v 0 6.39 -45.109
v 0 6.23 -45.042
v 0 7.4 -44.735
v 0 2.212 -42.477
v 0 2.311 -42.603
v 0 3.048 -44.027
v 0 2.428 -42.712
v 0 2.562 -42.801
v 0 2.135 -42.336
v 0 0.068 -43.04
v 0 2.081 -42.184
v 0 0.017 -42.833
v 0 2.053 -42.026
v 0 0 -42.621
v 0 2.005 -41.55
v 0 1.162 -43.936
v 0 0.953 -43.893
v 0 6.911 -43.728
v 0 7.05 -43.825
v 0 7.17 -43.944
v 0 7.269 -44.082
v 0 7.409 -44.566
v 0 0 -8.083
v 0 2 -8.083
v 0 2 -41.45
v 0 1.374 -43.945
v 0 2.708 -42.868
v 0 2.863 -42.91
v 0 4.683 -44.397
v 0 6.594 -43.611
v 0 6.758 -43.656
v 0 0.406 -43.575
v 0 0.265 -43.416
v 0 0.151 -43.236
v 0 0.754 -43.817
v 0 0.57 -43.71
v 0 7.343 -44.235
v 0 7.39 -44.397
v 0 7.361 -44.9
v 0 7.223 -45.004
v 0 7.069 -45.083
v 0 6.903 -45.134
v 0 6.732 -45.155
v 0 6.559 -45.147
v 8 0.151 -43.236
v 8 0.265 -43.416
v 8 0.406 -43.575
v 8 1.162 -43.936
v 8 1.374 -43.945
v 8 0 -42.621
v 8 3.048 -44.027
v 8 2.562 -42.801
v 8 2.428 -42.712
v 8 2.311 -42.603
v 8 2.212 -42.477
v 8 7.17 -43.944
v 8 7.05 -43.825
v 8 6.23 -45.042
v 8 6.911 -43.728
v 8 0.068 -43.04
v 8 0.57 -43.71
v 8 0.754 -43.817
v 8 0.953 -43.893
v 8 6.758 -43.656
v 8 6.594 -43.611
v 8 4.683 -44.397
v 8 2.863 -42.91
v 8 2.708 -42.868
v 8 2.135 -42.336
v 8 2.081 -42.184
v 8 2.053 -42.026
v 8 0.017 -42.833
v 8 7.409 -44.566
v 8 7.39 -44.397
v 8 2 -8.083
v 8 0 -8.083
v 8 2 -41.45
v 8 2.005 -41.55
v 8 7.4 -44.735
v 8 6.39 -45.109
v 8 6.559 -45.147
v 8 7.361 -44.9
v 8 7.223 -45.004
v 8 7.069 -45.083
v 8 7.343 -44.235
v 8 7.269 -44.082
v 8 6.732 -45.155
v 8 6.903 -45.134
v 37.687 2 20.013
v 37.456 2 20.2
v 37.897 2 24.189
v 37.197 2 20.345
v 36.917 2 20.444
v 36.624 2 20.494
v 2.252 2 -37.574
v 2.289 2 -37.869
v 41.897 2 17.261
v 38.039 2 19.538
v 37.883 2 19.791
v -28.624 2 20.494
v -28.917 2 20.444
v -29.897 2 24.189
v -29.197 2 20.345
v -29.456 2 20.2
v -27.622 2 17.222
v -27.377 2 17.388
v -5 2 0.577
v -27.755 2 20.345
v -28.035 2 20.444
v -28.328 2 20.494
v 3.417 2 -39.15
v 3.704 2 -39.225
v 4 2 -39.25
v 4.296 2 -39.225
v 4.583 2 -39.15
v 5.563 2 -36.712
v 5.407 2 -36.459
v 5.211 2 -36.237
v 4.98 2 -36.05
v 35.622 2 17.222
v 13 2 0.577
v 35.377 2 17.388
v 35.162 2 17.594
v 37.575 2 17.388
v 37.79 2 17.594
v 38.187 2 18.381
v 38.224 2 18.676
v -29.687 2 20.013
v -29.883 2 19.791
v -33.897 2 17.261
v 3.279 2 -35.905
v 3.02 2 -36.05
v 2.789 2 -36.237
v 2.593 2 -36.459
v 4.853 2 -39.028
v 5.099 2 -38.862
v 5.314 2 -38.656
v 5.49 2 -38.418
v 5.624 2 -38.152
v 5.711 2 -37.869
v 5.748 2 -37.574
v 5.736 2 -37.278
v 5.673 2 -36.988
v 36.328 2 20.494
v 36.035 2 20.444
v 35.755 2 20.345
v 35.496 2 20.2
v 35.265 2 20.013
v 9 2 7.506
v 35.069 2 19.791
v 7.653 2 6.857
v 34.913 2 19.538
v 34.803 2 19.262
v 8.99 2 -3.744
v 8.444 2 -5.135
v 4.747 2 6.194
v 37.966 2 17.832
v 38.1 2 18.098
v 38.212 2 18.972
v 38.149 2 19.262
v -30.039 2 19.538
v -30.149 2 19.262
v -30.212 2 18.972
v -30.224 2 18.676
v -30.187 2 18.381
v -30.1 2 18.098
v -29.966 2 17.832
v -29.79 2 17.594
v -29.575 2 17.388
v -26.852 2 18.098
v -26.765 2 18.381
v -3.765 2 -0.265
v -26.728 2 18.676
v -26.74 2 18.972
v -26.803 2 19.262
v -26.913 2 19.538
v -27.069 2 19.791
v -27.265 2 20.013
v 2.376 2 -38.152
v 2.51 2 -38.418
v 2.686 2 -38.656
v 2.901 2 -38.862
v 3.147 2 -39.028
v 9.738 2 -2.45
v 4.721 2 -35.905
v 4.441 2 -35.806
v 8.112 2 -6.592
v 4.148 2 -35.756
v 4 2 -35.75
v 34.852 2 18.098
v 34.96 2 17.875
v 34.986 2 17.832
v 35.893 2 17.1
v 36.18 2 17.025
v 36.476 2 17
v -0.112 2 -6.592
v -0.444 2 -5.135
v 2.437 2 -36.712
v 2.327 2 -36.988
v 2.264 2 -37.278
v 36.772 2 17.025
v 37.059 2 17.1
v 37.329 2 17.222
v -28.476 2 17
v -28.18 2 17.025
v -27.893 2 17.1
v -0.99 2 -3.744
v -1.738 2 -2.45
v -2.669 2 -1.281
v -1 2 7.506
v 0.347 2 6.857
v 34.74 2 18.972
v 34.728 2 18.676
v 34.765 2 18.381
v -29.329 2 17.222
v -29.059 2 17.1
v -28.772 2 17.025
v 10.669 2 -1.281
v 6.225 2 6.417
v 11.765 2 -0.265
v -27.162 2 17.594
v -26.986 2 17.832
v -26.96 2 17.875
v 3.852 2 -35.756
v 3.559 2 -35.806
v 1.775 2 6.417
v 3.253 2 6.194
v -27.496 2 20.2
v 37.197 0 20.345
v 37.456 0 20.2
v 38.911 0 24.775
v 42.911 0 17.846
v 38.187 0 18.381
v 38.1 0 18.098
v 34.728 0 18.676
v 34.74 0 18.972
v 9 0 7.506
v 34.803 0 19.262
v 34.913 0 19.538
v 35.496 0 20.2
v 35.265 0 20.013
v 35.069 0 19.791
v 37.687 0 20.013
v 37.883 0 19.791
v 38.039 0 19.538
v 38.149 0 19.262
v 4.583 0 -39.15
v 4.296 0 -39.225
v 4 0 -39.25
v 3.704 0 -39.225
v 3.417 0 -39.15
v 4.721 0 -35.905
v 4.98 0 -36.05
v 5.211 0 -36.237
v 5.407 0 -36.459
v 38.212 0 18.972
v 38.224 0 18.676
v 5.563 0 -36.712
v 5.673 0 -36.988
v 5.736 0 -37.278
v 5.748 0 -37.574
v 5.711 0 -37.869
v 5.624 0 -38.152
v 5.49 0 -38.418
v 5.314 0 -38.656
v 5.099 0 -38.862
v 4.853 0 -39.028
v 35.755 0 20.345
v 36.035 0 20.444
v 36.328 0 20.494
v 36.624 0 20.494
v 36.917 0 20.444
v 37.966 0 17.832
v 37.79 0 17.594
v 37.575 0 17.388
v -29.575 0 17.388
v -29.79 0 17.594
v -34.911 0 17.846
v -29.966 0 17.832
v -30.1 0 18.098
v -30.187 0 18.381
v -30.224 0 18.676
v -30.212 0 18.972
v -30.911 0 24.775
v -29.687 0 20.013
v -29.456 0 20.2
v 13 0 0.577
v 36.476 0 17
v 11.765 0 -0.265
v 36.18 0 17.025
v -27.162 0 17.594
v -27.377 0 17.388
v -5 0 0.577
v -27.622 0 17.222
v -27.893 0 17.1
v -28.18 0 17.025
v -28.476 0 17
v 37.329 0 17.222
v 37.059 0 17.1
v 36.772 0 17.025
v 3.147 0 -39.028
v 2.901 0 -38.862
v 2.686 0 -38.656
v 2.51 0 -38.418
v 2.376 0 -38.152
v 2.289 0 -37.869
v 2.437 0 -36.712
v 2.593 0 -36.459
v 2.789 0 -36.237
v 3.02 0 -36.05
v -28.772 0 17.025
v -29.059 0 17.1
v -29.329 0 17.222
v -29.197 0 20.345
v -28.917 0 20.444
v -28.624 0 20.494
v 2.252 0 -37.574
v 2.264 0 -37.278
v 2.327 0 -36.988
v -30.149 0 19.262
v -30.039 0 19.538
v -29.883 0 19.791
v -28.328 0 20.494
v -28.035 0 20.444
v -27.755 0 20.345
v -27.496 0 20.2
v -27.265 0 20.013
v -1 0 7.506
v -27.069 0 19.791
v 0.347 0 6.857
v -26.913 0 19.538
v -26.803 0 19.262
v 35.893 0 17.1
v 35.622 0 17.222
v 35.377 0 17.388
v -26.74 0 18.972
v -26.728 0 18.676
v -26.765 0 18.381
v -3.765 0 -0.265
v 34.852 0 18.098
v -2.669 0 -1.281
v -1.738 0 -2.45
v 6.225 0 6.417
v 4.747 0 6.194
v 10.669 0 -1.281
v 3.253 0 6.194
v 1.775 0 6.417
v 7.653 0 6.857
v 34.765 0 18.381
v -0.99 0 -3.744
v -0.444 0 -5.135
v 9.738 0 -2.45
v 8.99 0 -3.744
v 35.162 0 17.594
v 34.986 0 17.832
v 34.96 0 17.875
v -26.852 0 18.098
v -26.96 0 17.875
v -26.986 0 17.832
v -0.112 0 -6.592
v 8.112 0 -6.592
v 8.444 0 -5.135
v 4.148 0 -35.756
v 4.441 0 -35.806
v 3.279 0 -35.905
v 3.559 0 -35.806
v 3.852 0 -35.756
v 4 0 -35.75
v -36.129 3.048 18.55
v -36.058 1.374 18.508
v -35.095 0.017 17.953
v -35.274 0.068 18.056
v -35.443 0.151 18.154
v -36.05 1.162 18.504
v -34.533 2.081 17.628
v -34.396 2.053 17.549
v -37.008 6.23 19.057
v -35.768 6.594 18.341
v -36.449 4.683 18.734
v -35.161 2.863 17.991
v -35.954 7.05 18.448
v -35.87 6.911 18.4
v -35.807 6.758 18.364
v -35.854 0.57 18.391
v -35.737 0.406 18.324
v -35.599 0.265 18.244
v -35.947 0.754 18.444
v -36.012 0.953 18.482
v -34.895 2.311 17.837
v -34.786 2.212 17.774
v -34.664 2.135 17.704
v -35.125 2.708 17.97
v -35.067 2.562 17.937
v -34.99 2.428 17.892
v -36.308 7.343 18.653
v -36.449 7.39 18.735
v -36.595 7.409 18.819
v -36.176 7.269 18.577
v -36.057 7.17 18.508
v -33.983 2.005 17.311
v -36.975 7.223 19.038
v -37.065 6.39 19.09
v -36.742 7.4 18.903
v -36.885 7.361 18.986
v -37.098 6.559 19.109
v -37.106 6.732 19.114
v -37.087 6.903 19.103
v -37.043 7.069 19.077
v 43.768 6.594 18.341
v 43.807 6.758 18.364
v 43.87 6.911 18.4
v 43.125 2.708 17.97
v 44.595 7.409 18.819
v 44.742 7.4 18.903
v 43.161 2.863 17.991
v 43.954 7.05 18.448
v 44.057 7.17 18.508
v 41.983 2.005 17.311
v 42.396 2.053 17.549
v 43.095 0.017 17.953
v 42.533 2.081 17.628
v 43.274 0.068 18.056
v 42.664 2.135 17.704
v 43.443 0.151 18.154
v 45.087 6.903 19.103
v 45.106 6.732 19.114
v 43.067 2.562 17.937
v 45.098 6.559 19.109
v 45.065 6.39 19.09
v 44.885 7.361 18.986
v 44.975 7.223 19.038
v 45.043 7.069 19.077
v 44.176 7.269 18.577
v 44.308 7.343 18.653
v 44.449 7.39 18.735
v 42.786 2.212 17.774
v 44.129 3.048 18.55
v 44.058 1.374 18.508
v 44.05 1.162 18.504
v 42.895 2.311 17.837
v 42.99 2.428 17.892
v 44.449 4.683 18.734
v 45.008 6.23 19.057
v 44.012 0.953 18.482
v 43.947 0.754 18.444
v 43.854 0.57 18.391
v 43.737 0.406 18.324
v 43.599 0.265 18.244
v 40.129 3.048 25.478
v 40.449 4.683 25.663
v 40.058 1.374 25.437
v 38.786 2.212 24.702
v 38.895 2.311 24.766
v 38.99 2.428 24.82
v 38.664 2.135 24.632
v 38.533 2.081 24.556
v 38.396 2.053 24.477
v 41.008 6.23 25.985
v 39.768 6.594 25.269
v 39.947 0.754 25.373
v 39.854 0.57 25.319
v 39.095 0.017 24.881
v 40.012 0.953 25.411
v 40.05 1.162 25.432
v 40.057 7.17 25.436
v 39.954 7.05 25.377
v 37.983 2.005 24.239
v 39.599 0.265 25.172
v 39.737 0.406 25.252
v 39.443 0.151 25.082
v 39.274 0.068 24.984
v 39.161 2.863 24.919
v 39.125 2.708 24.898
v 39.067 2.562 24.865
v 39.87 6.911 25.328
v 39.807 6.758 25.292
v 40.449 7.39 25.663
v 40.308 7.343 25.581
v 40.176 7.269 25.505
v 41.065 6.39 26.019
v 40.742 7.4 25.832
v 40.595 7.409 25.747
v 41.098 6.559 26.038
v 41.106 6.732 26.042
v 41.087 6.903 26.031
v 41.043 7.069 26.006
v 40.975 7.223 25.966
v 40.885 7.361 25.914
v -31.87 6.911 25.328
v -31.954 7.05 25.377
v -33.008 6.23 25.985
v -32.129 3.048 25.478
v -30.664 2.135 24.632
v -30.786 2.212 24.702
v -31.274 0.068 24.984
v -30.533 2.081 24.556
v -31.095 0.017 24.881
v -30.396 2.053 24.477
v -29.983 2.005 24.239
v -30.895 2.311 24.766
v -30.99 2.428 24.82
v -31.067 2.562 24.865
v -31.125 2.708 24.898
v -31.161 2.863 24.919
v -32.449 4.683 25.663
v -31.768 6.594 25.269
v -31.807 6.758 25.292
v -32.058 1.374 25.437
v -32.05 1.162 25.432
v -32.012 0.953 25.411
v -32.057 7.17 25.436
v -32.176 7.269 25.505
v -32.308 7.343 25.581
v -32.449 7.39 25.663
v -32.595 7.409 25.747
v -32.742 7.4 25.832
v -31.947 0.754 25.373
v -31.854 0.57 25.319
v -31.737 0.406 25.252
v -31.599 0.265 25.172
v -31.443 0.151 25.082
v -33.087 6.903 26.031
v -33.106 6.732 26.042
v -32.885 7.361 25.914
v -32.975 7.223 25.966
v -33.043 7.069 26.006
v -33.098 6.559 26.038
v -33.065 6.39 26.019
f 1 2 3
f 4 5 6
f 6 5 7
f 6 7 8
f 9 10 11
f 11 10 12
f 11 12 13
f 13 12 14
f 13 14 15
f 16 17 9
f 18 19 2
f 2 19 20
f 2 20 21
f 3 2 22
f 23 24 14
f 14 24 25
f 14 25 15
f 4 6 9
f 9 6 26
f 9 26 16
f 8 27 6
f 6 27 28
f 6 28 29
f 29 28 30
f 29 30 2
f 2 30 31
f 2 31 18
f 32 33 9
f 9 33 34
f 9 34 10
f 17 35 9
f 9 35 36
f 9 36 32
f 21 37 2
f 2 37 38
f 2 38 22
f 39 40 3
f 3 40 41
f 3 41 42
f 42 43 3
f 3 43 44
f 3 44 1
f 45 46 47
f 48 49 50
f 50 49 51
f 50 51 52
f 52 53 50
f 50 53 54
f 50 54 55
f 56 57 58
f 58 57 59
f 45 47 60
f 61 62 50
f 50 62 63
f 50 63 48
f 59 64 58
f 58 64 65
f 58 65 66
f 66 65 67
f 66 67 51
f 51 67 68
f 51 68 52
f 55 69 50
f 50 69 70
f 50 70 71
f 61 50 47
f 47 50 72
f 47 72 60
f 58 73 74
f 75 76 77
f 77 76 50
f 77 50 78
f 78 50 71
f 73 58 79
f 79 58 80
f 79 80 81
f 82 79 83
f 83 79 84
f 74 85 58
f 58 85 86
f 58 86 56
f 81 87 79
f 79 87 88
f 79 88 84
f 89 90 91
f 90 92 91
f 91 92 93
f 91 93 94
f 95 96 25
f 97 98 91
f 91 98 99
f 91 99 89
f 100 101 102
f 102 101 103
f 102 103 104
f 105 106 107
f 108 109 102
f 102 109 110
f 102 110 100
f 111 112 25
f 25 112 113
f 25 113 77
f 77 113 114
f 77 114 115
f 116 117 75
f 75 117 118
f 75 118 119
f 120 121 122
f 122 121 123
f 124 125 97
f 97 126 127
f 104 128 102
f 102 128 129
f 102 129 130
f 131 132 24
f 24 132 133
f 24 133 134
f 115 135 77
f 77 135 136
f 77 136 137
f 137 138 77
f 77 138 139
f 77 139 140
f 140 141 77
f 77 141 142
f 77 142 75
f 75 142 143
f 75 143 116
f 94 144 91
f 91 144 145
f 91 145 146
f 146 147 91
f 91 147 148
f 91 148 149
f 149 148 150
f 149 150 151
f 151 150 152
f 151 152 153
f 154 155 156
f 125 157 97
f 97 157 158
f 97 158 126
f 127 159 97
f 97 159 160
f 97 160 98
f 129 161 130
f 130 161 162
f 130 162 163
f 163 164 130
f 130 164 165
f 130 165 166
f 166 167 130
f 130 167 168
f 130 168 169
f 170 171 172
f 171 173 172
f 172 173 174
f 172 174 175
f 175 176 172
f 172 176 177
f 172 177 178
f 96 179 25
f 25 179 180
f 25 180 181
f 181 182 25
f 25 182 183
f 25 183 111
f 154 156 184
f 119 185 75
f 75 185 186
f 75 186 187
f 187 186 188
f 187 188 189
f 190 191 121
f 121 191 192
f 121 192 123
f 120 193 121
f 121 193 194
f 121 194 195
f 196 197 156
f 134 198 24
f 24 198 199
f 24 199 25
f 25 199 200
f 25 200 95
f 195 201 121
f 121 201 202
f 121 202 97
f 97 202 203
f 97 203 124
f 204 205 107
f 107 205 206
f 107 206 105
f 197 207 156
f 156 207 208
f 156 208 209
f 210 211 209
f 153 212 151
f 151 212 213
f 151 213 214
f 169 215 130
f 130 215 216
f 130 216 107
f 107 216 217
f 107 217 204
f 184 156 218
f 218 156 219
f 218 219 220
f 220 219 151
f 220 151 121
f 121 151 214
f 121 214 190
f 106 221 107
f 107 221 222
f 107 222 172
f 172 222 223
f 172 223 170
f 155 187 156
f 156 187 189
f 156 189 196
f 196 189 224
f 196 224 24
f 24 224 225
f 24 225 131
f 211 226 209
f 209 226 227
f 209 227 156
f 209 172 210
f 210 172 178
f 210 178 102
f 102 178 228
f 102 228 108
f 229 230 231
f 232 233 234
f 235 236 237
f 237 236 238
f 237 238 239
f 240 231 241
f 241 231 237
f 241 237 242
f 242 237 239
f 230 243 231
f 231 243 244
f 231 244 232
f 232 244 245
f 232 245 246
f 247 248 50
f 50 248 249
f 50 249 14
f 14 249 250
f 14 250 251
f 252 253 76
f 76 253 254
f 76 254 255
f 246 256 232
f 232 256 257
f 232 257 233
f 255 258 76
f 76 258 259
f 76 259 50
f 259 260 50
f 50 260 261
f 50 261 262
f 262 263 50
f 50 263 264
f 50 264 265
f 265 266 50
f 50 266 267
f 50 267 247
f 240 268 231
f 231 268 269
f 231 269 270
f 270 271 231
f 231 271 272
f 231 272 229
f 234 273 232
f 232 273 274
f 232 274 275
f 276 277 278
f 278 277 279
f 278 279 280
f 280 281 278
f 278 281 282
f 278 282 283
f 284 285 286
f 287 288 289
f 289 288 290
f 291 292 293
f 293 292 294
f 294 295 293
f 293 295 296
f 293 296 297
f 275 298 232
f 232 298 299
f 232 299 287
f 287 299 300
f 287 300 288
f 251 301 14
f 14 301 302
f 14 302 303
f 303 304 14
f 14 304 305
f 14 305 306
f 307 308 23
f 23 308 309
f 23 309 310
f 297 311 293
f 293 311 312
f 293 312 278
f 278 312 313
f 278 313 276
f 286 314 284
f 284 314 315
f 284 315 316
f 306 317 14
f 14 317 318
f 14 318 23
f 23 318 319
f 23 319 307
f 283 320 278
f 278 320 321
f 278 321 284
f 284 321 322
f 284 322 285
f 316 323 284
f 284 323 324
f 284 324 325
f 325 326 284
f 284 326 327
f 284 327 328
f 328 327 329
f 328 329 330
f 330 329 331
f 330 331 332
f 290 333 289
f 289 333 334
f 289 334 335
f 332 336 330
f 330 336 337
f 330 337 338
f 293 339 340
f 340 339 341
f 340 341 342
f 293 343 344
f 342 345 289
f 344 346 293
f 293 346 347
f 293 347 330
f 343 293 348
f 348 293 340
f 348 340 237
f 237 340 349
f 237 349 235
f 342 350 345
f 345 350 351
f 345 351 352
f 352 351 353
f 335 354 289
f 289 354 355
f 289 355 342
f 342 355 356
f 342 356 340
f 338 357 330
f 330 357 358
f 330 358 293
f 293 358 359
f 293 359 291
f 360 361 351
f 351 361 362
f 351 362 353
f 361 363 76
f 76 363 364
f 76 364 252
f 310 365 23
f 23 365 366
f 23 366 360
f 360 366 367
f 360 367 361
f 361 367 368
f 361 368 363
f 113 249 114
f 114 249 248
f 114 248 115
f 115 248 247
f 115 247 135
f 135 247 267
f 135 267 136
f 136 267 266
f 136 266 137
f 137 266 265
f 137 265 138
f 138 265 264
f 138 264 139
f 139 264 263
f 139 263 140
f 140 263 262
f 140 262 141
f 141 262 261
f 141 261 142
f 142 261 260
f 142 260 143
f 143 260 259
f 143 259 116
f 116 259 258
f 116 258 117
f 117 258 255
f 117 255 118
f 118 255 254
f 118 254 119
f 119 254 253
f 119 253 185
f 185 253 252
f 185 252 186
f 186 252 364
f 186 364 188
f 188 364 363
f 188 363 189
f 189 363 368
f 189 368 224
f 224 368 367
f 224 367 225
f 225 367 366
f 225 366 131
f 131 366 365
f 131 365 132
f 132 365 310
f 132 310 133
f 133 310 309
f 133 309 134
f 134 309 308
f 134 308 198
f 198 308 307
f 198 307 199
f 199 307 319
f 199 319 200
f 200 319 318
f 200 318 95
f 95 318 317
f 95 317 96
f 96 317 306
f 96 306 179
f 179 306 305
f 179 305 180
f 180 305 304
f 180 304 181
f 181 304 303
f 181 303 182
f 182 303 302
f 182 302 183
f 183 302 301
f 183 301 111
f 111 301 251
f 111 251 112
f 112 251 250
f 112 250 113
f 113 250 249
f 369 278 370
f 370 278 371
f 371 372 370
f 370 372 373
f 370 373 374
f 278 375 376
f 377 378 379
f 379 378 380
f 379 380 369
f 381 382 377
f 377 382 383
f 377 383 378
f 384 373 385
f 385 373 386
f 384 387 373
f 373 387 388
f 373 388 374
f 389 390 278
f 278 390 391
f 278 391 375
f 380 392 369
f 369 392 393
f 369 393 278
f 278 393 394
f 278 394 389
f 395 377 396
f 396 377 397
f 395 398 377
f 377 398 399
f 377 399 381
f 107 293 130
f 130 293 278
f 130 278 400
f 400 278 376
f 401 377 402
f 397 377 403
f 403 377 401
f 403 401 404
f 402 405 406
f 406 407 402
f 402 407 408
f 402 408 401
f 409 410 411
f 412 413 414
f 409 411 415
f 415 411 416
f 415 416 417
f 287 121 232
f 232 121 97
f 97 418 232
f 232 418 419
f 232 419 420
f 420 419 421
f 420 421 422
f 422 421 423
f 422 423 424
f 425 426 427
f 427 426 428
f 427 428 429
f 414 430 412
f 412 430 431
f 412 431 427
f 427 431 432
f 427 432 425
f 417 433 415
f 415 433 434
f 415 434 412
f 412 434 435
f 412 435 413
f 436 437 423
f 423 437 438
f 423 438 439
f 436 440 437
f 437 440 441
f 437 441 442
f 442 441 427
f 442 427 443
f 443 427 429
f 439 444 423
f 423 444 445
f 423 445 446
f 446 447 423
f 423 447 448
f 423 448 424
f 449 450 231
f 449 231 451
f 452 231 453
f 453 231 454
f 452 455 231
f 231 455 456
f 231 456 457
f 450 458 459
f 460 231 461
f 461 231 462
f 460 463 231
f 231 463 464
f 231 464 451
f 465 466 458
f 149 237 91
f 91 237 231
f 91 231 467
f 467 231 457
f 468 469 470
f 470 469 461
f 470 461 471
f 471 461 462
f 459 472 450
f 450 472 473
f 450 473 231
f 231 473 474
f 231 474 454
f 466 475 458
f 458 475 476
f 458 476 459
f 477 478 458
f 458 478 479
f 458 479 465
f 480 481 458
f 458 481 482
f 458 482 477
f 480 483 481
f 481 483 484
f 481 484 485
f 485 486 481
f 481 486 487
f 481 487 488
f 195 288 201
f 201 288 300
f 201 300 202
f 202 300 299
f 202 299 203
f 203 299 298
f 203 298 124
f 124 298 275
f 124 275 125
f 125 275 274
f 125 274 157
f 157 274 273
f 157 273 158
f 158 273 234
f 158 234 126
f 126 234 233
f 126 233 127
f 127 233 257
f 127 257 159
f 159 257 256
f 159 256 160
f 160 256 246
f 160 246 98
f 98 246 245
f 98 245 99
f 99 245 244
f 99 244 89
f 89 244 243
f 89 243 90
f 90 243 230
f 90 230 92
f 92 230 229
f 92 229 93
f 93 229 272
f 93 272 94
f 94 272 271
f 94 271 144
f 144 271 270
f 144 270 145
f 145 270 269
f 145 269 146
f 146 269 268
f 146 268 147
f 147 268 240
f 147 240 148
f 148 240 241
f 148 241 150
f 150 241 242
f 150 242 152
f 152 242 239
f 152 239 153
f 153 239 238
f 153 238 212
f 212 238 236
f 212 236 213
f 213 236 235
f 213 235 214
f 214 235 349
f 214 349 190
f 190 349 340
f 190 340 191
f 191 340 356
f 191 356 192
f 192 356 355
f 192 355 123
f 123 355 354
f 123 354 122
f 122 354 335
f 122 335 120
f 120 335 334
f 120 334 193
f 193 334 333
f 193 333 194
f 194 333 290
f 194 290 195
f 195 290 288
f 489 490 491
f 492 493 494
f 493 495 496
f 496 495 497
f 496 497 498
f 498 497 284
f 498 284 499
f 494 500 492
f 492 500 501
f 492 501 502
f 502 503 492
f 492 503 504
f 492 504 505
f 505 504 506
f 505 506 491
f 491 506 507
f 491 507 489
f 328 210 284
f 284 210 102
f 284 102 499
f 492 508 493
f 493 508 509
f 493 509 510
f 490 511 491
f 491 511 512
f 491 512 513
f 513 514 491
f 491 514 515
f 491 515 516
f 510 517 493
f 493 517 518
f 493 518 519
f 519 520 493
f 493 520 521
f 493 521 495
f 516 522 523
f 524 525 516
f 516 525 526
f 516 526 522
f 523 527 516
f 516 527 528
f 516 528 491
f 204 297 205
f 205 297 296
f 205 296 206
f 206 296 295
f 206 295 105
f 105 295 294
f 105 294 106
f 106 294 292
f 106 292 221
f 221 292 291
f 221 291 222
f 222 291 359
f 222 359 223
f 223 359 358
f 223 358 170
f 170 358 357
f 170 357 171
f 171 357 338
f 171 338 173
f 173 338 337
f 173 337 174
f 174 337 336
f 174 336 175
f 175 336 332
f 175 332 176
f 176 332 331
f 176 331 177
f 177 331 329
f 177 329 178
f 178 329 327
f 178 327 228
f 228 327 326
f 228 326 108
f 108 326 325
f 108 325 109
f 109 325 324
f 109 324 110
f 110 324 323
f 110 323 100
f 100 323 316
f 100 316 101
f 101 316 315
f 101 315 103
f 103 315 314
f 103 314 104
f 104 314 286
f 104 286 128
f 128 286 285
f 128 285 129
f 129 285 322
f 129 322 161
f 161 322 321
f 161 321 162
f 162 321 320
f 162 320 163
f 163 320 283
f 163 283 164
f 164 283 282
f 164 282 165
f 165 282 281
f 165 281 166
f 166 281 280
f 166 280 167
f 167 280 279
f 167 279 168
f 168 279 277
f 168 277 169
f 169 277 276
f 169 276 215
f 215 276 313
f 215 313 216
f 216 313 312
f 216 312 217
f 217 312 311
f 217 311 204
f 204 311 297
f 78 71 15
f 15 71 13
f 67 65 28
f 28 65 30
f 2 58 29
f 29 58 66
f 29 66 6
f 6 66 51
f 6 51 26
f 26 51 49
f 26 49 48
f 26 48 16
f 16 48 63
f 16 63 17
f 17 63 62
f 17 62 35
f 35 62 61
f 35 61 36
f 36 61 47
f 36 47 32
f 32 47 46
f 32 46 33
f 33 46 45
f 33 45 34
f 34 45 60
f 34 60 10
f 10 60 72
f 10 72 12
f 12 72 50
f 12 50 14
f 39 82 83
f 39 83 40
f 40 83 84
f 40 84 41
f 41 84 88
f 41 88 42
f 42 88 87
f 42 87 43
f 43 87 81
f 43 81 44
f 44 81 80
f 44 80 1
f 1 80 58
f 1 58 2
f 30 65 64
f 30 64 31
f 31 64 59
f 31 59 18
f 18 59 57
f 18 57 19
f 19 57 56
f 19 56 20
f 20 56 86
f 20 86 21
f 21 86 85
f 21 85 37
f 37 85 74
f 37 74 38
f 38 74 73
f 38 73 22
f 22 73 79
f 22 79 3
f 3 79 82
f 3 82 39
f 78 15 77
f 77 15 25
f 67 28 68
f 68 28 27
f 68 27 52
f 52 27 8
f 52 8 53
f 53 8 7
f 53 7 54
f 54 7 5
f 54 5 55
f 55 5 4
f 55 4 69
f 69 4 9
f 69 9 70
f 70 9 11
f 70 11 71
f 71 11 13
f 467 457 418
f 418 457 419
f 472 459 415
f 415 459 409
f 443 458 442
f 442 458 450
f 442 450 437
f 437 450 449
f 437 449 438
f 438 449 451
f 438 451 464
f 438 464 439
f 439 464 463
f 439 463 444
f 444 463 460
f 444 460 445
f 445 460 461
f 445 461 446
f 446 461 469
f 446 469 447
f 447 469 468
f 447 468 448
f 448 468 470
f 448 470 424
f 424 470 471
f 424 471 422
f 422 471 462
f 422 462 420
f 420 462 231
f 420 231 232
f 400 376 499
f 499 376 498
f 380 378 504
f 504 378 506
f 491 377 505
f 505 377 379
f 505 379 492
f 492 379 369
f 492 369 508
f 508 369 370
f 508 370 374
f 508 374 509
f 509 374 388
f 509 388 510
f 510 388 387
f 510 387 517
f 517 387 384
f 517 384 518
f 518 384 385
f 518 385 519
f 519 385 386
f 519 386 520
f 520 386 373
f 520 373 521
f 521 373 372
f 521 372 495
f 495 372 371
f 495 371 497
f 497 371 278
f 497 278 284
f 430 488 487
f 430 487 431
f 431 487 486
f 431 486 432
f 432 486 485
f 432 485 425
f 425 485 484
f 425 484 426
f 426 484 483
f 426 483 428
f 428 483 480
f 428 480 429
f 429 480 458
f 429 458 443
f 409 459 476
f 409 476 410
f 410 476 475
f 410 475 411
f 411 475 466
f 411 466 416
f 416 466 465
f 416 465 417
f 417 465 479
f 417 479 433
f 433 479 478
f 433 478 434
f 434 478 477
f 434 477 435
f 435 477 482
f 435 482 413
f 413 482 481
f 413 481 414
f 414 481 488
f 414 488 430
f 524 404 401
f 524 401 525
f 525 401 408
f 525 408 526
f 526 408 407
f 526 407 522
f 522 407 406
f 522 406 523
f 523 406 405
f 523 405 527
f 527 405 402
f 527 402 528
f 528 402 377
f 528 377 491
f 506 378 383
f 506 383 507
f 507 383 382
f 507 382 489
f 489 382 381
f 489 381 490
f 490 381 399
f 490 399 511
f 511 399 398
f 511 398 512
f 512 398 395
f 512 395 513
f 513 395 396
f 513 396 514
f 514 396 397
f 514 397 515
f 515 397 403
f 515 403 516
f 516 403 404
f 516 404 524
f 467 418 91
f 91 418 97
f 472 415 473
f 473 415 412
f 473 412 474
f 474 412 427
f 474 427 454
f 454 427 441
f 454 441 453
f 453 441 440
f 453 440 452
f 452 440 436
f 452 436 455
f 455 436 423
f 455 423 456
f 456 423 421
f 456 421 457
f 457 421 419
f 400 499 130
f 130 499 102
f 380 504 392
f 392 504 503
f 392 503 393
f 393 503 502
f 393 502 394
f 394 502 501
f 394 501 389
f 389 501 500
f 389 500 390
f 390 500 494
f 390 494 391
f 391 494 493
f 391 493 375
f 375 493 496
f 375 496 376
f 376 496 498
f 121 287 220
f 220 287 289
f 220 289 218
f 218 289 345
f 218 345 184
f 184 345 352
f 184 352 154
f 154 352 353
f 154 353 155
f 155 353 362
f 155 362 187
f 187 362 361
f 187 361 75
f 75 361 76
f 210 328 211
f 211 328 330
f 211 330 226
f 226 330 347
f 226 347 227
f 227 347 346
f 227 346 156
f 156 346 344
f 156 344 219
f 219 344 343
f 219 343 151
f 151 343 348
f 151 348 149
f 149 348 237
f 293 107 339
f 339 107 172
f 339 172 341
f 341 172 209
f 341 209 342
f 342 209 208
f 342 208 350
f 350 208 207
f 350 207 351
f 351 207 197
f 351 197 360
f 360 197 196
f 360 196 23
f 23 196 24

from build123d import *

# Parameters (mm, degrees)
SKETCH1_W                = 8
SKETCH1_H                = 41.5
SKETCH1_R                = 1.75
BOSS_EXTRUDE2_DEPTH      = 2
CIRPATTERN1_COUNT        = 3
BOSS_EXTRUDE4_DEPTH      = 4
FILLET4_R                = 1
FILLET5_R                = 1
CIRPATTERN2_COUNT        = 3
FILLET4_OF_CIRPATTERN2_R = 1
FILLET5_OF_CIRPATTERN2_R = 1
FILLET6_R                = 10


with BuildPart() as part:
    # Sketch1 → Boss-Extrude2 (new body)
    with BuildSketch(Plane(origin=(0, 0, 0), x_dir=(1, 0, 0), z_dir=(0, 1, 0))):
        with Locations((4, 20.75)):
            Rectangle(SKETCH1_W, SKETCH1_H)
        with Locations(Location((4, 37.5, 0), (0, 0, 270))):
            Circle(SKETCH1_R, mode=Mode.SUBTRACT)
    boss_extrude2 = extrude(amount=BOSS_EXTRUDE2_DEPTH)

    # CirPattern1: Boss-Extrude2 ×3 about axis
    cirpattern1_axis = Axis((4, 0, 0), (0, 1, 0))
    for i in range(1, CIRPATTERN1_COUNT):
        add(boss_extrude2.rotate(cirpattern1_axis, i * 360 / CIRPATTERN1_COUNT))

    # Sketch8 → Boss-Extrude4 (add, symmetric)
    with BuildSketch(Plane(origin=(4, 0, 0), x_dir=(0, 0, -1), z_dir=(1, 0, 0))):
        with BuildLine():
            Line((41.5, 0), (42.621101534, 0))
            ThreePointArc((42.621101534, 0), (43.575288985, 0.405725605), (43.945070079, 1.374409713))
            ThreePointArc((43.945070079, 1.374409713), (44.287115262, 4.314035864), (45.5, 7.013537193))
            Line((45.5, 7.013537193), (43.885890552, 8.06067472))
            Line((43.885890552, 8.06067472), (42.771717246, 2.127015587))
            Line((42.771717246, 2.127015587), (41.5, 2))
            Line((41.5, 2), (41.5, 0))
        make_face()
    boss_extrude4 = extrude(amount=BOSS_EXTRUDE4_DEPTH, both=True)

    # Fillet4
    # the kernel refuses this fillet: 1 mm, written as the material it takes off along each edge
    with BuildSketch(Plane(origin=(11.730116112, 8.06067472, -43.885890552), x_dir=(0, -0.9828237835068792, 0.1845464997587953), z_dir=(-1, 0, 0))) as fillet4_piece_1:
        with BuildLine():
            CenterArc((FILLET4_R * 1.49204644486, -FILLET4_R), FILLET4_R, 90, 112.338398351)
            Line((FILLET4_R * 0.567091237268, -FILLET4_R * 1.38007612915), (0, 0))
            Line((0, 0), (FILLET4_R * 1.49204644486, 0))
        make_face()
    extrude(amount=15.460232224, mode=Mode.SUBTRACT)
    with BuildSketch(Plane(origin=(-2.382872769, 7.013537193, -45.5), x_dir=(0, 0.5442451052621637, 0.8389262574256311), z_dir=(1, 0, 0))) as fillet4_piece_2:
        with BuildLine():
            CenterArc((0.953149108, 1), FILLET4_R, 185.36479385, 84.63520615)
            ThreePointArc((-0.042470495, 0.906503441), (-0.010623444, 0.453748893), (0, 0))
            Line((0, 0), (0.953149108, 0))
        make_face()
    extrude(amount=12.765745538, mode=Mode.SUBTRACT)

    # Fillet5
    # the kernel refuses this fillet: 1 mm, written as the material it adds along each edge
    with BuildSketch(Plane(origin=(8, 2, -41.5), x_dir=(0, 0, 1), z_dir=(-1, 0, 0))) as fillet5_piece_1:
        with BuildLine():
            CenterArc((FILLET5_R * 0.0498146888591, FILLET5_R), FILLET5_R, 264.296371881, 5.703628119)
            Line((-FILLET5_R * 0.0495680702218, FILLET5_R * 0.00495072122158), (0, 0))
            Line((0, 0), (FILLET5_R * 0.0498146888591, 0))
        make_face()
    extrude(amount=8)
    with BuildSketch(Plane(origin=(8, 2.127015587, -42.771717246), x_dir=(0, 0.9828237835068792, -0.18454649975879509), z_dir=(-1, 0, 0))) as fillet5_piece_2:
        with BuildLine():
            CenterArc((FILLET5_R * 0.748935389987, -FILLET5_R), FILLET5_R, 90, 73.66167838)
            Line((-FILLET5_R * 0.210681966633, -FILLET5_R * 0.718691399219), (0, 0))
            Line((0, 0), (FILLET5_R * 0.748935389987, 0))
        make_face()
    extrude(amount=8)

    # CirPattern2: Boss-Extrude4 ×3 about axis
    cirpattern2_axis = Axis((4, 0, 0), (0, 1, 0))
    for i in range(1, CIRPATTERN2_COUNT):
        add(boss_extrude4.rotate(cirpattern2_axis, i * 360 / CIRPATTERN2_COUNT))

    # Fillet4 of CirPattern2
    # the kernel refuses this fillet: 1 mm, written as the material it takes off along each edge
    with BuildSketch(Plane(origin=(-37.871354141, 8.06067472, 15.248468348), x_dir=(-0.7265314508324002, -0.5442451052621637, 0.4194631287128154), z_dir=(0.49999999999999983, 0, 0.8660254037844388))) as fillet4_of_cirpattern2_piece_1:
        with BuildLine():
            CenterArc((FILLET4_OF_CIRPATTERN2_R * 1.49204644486, FILLET4_OF_CIRPATTERN2_R), FILLET4_OF_CIRPATTERN2_R, 157.661601649, 112.338398351)
            Line((FILLET4_OF_CIRPATTERN2_R * 0.567091237268, FILLET4_OF_CIRPATTERN2_R * 1.38007612915), (0, 0))
            Line((0, 0), (FILLET4_OF_CIRPATTERN2_R * 1.49204644486, 0))
        make_face()
    extrude(amount=15.460232224, mode=Mode.SUBTRACT)
    with BuildSketch(Plane(origin=(-32.212719488, 7.013537193, 28.277729967), x_dir=(0.43681230013054545, -0.8634774766062033, -0.2521936990657099), z_dir=(-0.49999999999999983, 0, -0.8660254037844388))) as fillet4_of_cirpattern2_piece_2:
        with BuildLine():
            CenterArc((0.954297344, -0.9989043), FILLET4_OF_CIRPATTERN2_R, 92.682396925, 84.63520615)
            Line((-0.044606957, -0.952104742), (0, 0))
            ThreePointArc((0, 0), (0.453748893, -0.010623444), (0.907497786, 0))
        make_face()
    extrude(amount=12.765745538, mode=Mode.SUBTRACT)
    with BuildSketch(Plane(origin=(38.141238029, 8.06067472, 28.637422203), x_dir=(-0.15982195697061236, -0.9828237835068798, -0.09227324987939595), z_dir=(0.5000000000000004, 0, -0.8660254037844384))) as fillet4_of_cirpattern2_piece_3:
        with BuildLine():
            CenterArc((FILLET4_OF_CIRPATTERN2_R * 1.49204644486, -FILLET4_OF_CIRPATTERN2_R), FILLET4_OF_CIRPATTERN2_R, 90, 112.338398351)
            Line((FILLET4_OF_CIRPATTERN2_R * 0.567091237268, -FILLET4_OF_CIRPATTERN2_R * 1.38007612915), (0, 0))
            Line((0, 0), (FILLET4_OF_CIRPATTERN2_R * 1.49204644486, 0))
        make_face()
    extrude(amount=15.460232224, mode=Mode.SUBTRACT)
    with BuildSketch(Plane(origin=(46.595592257, 7.013537193, 17.222270033), x_dir=(-0.7265314508324002, 0.5442451052621633, -0.4194631287128161), z_dir=(-0.5000000000000004, 0, 0.8660254037844384))) as fillet4_of_cirpattern2_piece_4:
        with BuildLine():
            CenterArc((0.953149108, 1), FILLET4_OF_CIRPATTERN2_R, 185.36479385, 84.63520615)
            ThreePointArc((-0.042470495, 0.906503441), (-0.010623444, 0.453748893), (0, 0))
            Line((0, 0), (0.953149108, 0))
        make_face()
    extrude(amount=12.765745538, mode=Mode.SUBTRACT)

    # Fillet5 of CirPattern2
    # the kernel refuses this fillet: 1 mm, written as the material it adds along each edge
    with BuildSketch(Plane(origin=(-33.940054257, 2, 17.285898385), x_dir=(0.8660254037844387, 0, -0.4999999999999998), z_dir=(0.49999999999999983, 0, 0.8660254037844388)), Plane(origin=(37.940054257, 2, 24.214101615), x_dir=(-0.8660254037844384, 0, -0.5000000000000004), z_dir=(0.5000000000000004, 0, -0.8660254037844384))) as fillet5_of_cirpattern2_piece_1:
        with BuildLine():
            CenterArc((FILLET5_OF_CIRPATTERN2_R * 0.0498146888591, FILLET5_OF_CIRPATTERN2_R), FILLET5_OF_CIRPATTERN2_R, 264.296371881, 5.703628119)
            Line((-FILLET5_OF_CIRPATTERN2_R * 0.0495680702218, FILLET5_OF_CIRPATTERN2_R * 0.00495072122158), (0, 0))
            Line((0, 0), (FILLET5_OF_CIRPATTERN2_R * 0.0498146888591, 0))
        make_face()
    extrude(amount=8)
    with BuildSketch(Plane(origin=(-35.041393699, 2.127015587, 17.921757008), x_dir=(0.861737953439498, -0.0993827590809451, -0.4975246393892111), z_dir=(0.49999999999999983, 0, 0.8660254037844388)), Plane(origin=(39.041393699, 2.127015587, 24.849960238), x_dir=(-0.8617379534394976, -0.09938275908094509, -0.49752463938921165), z_dir=(0.5000000000000004, 0, -0.8660254037844384))) as fillet5_of_cirpattern2_piece_2:
        with BuildLine():
            CenterArc((FILLET5_OF_CIRPATTERN2_R * 0.748935389987, FILLET5_OF_CIRPATTERN2_R), FILLET5_OF_CIRPATTERN2_R, 196.33832162, 73.66167838)
            Line((-FILLET5_OF_CIRPATTERN2_R * 0.210681966633, FILLET5_OF_CIRPATTERN2_R * 0.718691399219), (0, 0))
            Line((0, 0), (FILLET5_OF_CIRPATTERN2_R * 0.748935389987, 0))
        make_face()
    extrude(amount=8)

    # Fillet6
    fillet6_edges = [part.edges().sort_by_distance(p)[0] for p in [
        (8, 1, -2.309401077),
        (0, 1, -2.309401077),
        (4, 1, 4.618802154),
    ]]
    fillet(fillet6_edges, radius=FILLET6_R)


solid = part.part
